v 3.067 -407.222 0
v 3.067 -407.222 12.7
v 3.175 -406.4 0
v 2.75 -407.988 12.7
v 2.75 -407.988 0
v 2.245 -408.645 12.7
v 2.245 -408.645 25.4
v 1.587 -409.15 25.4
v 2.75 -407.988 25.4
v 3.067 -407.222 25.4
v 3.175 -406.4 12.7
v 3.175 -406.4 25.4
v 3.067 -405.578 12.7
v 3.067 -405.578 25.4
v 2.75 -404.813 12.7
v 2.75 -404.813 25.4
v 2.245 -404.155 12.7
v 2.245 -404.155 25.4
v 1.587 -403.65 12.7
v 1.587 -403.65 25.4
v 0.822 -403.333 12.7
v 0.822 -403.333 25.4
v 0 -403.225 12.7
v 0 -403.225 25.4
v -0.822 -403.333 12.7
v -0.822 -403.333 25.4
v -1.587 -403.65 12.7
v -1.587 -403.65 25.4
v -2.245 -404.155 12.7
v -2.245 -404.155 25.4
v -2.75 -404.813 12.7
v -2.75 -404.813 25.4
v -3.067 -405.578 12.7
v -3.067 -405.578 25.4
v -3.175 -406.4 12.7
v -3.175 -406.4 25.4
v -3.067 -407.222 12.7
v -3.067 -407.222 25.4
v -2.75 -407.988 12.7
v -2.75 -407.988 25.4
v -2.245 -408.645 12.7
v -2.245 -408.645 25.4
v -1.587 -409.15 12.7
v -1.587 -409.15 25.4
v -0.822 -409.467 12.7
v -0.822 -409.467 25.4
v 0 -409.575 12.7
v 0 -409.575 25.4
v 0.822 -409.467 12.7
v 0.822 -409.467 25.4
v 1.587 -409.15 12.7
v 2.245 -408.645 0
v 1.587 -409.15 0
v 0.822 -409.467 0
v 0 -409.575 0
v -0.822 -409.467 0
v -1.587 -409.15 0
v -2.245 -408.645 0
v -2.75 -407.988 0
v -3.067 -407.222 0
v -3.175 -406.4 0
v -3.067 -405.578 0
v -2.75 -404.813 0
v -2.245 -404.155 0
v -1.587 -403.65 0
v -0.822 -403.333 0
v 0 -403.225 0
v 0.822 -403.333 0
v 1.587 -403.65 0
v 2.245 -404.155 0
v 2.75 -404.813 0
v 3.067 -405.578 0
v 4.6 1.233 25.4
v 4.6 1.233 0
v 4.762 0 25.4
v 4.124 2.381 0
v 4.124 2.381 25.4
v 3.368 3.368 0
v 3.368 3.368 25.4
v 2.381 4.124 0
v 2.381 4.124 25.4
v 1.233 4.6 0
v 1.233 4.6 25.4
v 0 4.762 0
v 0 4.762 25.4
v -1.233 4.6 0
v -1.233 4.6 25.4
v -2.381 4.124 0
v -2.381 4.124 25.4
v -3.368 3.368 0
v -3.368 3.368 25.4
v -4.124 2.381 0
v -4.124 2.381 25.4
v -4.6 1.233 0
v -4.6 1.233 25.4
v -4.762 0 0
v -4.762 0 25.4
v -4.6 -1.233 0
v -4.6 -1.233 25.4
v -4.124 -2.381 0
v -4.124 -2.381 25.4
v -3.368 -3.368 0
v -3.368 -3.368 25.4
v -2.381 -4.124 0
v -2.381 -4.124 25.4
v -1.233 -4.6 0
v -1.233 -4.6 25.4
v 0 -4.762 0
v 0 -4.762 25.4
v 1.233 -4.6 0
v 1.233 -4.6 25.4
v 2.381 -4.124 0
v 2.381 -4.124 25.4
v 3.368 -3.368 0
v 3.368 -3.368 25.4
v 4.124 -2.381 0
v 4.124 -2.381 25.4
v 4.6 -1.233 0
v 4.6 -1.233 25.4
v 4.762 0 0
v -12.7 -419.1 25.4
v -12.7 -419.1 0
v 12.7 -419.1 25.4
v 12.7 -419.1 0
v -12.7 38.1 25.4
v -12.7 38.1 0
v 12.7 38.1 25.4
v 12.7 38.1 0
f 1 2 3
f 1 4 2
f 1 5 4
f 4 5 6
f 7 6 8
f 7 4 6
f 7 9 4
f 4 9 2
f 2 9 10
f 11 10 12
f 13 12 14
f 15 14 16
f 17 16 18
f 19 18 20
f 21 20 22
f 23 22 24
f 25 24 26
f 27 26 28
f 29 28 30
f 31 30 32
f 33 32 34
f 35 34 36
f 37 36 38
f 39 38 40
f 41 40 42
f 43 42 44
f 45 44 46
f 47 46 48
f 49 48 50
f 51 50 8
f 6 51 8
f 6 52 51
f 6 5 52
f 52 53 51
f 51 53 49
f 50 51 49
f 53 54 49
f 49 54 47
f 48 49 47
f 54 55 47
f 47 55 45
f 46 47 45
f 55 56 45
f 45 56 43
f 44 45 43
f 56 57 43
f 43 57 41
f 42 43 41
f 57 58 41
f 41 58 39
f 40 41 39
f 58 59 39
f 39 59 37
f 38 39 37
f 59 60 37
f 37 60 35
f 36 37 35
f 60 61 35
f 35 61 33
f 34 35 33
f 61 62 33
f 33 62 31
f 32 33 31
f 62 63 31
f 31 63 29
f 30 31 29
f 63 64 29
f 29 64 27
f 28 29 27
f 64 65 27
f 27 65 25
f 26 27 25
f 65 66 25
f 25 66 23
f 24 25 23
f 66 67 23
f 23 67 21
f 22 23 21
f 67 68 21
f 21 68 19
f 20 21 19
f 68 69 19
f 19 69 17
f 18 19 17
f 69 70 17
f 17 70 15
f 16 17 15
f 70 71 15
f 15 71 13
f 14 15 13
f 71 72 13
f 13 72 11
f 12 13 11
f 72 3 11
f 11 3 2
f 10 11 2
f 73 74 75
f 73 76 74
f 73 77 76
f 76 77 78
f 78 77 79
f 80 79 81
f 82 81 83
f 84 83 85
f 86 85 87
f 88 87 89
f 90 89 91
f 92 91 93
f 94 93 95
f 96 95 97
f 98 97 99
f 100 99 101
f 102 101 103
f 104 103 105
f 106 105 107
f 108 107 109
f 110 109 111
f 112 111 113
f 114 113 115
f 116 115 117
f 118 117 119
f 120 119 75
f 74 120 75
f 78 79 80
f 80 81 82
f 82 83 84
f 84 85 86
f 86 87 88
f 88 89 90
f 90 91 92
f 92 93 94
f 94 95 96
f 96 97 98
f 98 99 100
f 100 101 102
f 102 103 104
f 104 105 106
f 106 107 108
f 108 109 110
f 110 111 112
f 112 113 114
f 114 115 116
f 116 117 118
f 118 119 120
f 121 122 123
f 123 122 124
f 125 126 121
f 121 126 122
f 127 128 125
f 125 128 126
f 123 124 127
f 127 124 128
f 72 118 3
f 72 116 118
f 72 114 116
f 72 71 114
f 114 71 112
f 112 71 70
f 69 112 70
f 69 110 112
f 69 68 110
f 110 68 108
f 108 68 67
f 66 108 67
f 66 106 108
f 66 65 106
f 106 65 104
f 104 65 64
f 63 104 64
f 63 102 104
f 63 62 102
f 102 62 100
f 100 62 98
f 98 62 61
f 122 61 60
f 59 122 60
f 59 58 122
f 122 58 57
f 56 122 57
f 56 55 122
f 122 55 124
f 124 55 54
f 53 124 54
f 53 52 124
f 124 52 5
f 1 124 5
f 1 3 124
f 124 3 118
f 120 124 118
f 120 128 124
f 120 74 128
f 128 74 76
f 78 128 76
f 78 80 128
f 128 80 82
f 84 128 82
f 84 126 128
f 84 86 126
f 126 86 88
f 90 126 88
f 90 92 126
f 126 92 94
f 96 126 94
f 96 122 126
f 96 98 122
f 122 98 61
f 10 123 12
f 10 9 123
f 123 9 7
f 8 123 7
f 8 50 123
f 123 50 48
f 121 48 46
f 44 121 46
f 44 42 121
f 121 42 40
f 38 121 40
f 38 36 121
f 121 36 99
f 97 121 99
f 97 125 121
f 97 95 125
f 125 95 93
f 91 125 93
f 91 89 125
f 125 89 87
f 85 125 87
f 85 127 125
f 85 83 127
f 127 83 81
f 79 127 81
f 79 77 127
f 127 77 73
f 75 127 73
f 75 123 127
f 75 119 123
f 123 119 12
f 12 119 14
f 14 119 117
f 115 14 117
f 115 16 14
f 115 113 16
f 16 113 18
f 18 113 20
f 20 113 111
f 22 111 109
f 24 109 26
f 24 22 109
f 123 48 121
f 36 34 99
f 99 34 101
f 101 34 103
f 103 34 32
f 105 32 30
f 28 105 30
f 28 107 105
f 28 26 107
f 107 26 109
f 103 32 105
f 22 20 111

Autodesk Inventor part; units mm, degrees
ref_plane "YZ Plane" through (0, 0, 0) normal (1, 0, 0) x (0, 1, 0)
ref_plane "XZ Plane" through (0, 0, 0) normal (0, 1, 0) x (-1, 0, 0)
ref_plane "XY Plane" through (0, 0, 0) normal (0, 0, 1) x (1, 0, 0)
sketch "Sketch1" plane through (0, 0, 0) normal (0, 0, 1) x (1, 0, 0)
  circle A0 centre (0, 0) radius 4.7625
  line L0 (12.7, -419.1) -> (12.7, 38.1)
  line L1 (12.7, 38.1) -> (-12.7, 38.1)
  line L2 (-12.7, 38.1) -> (-12.7, -419.1)
  line L3 (-12.7, -419.1) -> (12.7, -419.1)
  dimension "d0" = 9.525
  dimension "d2" = 12.7
  dimension "d3" = 38.1
  dimension "d4" = 457.2
extrude "Extrusion1" add sketch "Sketch1" along normal blind 25.4
sketch "Sketch2" plane through (0, 0, 25.4) normal (0, 0, 1) x (1, 0, 0)
  line L0 (12.7, -419.1) -> (-12.7, -419.1) projected
  line L1 (12.7, 38.1) -> (12.7, -419.1) projected
  circle A0 centre (0, -406.4) radius 3.175
  dimension "d7" = 12.7
  dimension "d8" = 12.7
  dimension "d9" = 6.35
extrude "Extrusion2" cut sketch "Sketch2" against normal up to next
properties part number "Stinger"
